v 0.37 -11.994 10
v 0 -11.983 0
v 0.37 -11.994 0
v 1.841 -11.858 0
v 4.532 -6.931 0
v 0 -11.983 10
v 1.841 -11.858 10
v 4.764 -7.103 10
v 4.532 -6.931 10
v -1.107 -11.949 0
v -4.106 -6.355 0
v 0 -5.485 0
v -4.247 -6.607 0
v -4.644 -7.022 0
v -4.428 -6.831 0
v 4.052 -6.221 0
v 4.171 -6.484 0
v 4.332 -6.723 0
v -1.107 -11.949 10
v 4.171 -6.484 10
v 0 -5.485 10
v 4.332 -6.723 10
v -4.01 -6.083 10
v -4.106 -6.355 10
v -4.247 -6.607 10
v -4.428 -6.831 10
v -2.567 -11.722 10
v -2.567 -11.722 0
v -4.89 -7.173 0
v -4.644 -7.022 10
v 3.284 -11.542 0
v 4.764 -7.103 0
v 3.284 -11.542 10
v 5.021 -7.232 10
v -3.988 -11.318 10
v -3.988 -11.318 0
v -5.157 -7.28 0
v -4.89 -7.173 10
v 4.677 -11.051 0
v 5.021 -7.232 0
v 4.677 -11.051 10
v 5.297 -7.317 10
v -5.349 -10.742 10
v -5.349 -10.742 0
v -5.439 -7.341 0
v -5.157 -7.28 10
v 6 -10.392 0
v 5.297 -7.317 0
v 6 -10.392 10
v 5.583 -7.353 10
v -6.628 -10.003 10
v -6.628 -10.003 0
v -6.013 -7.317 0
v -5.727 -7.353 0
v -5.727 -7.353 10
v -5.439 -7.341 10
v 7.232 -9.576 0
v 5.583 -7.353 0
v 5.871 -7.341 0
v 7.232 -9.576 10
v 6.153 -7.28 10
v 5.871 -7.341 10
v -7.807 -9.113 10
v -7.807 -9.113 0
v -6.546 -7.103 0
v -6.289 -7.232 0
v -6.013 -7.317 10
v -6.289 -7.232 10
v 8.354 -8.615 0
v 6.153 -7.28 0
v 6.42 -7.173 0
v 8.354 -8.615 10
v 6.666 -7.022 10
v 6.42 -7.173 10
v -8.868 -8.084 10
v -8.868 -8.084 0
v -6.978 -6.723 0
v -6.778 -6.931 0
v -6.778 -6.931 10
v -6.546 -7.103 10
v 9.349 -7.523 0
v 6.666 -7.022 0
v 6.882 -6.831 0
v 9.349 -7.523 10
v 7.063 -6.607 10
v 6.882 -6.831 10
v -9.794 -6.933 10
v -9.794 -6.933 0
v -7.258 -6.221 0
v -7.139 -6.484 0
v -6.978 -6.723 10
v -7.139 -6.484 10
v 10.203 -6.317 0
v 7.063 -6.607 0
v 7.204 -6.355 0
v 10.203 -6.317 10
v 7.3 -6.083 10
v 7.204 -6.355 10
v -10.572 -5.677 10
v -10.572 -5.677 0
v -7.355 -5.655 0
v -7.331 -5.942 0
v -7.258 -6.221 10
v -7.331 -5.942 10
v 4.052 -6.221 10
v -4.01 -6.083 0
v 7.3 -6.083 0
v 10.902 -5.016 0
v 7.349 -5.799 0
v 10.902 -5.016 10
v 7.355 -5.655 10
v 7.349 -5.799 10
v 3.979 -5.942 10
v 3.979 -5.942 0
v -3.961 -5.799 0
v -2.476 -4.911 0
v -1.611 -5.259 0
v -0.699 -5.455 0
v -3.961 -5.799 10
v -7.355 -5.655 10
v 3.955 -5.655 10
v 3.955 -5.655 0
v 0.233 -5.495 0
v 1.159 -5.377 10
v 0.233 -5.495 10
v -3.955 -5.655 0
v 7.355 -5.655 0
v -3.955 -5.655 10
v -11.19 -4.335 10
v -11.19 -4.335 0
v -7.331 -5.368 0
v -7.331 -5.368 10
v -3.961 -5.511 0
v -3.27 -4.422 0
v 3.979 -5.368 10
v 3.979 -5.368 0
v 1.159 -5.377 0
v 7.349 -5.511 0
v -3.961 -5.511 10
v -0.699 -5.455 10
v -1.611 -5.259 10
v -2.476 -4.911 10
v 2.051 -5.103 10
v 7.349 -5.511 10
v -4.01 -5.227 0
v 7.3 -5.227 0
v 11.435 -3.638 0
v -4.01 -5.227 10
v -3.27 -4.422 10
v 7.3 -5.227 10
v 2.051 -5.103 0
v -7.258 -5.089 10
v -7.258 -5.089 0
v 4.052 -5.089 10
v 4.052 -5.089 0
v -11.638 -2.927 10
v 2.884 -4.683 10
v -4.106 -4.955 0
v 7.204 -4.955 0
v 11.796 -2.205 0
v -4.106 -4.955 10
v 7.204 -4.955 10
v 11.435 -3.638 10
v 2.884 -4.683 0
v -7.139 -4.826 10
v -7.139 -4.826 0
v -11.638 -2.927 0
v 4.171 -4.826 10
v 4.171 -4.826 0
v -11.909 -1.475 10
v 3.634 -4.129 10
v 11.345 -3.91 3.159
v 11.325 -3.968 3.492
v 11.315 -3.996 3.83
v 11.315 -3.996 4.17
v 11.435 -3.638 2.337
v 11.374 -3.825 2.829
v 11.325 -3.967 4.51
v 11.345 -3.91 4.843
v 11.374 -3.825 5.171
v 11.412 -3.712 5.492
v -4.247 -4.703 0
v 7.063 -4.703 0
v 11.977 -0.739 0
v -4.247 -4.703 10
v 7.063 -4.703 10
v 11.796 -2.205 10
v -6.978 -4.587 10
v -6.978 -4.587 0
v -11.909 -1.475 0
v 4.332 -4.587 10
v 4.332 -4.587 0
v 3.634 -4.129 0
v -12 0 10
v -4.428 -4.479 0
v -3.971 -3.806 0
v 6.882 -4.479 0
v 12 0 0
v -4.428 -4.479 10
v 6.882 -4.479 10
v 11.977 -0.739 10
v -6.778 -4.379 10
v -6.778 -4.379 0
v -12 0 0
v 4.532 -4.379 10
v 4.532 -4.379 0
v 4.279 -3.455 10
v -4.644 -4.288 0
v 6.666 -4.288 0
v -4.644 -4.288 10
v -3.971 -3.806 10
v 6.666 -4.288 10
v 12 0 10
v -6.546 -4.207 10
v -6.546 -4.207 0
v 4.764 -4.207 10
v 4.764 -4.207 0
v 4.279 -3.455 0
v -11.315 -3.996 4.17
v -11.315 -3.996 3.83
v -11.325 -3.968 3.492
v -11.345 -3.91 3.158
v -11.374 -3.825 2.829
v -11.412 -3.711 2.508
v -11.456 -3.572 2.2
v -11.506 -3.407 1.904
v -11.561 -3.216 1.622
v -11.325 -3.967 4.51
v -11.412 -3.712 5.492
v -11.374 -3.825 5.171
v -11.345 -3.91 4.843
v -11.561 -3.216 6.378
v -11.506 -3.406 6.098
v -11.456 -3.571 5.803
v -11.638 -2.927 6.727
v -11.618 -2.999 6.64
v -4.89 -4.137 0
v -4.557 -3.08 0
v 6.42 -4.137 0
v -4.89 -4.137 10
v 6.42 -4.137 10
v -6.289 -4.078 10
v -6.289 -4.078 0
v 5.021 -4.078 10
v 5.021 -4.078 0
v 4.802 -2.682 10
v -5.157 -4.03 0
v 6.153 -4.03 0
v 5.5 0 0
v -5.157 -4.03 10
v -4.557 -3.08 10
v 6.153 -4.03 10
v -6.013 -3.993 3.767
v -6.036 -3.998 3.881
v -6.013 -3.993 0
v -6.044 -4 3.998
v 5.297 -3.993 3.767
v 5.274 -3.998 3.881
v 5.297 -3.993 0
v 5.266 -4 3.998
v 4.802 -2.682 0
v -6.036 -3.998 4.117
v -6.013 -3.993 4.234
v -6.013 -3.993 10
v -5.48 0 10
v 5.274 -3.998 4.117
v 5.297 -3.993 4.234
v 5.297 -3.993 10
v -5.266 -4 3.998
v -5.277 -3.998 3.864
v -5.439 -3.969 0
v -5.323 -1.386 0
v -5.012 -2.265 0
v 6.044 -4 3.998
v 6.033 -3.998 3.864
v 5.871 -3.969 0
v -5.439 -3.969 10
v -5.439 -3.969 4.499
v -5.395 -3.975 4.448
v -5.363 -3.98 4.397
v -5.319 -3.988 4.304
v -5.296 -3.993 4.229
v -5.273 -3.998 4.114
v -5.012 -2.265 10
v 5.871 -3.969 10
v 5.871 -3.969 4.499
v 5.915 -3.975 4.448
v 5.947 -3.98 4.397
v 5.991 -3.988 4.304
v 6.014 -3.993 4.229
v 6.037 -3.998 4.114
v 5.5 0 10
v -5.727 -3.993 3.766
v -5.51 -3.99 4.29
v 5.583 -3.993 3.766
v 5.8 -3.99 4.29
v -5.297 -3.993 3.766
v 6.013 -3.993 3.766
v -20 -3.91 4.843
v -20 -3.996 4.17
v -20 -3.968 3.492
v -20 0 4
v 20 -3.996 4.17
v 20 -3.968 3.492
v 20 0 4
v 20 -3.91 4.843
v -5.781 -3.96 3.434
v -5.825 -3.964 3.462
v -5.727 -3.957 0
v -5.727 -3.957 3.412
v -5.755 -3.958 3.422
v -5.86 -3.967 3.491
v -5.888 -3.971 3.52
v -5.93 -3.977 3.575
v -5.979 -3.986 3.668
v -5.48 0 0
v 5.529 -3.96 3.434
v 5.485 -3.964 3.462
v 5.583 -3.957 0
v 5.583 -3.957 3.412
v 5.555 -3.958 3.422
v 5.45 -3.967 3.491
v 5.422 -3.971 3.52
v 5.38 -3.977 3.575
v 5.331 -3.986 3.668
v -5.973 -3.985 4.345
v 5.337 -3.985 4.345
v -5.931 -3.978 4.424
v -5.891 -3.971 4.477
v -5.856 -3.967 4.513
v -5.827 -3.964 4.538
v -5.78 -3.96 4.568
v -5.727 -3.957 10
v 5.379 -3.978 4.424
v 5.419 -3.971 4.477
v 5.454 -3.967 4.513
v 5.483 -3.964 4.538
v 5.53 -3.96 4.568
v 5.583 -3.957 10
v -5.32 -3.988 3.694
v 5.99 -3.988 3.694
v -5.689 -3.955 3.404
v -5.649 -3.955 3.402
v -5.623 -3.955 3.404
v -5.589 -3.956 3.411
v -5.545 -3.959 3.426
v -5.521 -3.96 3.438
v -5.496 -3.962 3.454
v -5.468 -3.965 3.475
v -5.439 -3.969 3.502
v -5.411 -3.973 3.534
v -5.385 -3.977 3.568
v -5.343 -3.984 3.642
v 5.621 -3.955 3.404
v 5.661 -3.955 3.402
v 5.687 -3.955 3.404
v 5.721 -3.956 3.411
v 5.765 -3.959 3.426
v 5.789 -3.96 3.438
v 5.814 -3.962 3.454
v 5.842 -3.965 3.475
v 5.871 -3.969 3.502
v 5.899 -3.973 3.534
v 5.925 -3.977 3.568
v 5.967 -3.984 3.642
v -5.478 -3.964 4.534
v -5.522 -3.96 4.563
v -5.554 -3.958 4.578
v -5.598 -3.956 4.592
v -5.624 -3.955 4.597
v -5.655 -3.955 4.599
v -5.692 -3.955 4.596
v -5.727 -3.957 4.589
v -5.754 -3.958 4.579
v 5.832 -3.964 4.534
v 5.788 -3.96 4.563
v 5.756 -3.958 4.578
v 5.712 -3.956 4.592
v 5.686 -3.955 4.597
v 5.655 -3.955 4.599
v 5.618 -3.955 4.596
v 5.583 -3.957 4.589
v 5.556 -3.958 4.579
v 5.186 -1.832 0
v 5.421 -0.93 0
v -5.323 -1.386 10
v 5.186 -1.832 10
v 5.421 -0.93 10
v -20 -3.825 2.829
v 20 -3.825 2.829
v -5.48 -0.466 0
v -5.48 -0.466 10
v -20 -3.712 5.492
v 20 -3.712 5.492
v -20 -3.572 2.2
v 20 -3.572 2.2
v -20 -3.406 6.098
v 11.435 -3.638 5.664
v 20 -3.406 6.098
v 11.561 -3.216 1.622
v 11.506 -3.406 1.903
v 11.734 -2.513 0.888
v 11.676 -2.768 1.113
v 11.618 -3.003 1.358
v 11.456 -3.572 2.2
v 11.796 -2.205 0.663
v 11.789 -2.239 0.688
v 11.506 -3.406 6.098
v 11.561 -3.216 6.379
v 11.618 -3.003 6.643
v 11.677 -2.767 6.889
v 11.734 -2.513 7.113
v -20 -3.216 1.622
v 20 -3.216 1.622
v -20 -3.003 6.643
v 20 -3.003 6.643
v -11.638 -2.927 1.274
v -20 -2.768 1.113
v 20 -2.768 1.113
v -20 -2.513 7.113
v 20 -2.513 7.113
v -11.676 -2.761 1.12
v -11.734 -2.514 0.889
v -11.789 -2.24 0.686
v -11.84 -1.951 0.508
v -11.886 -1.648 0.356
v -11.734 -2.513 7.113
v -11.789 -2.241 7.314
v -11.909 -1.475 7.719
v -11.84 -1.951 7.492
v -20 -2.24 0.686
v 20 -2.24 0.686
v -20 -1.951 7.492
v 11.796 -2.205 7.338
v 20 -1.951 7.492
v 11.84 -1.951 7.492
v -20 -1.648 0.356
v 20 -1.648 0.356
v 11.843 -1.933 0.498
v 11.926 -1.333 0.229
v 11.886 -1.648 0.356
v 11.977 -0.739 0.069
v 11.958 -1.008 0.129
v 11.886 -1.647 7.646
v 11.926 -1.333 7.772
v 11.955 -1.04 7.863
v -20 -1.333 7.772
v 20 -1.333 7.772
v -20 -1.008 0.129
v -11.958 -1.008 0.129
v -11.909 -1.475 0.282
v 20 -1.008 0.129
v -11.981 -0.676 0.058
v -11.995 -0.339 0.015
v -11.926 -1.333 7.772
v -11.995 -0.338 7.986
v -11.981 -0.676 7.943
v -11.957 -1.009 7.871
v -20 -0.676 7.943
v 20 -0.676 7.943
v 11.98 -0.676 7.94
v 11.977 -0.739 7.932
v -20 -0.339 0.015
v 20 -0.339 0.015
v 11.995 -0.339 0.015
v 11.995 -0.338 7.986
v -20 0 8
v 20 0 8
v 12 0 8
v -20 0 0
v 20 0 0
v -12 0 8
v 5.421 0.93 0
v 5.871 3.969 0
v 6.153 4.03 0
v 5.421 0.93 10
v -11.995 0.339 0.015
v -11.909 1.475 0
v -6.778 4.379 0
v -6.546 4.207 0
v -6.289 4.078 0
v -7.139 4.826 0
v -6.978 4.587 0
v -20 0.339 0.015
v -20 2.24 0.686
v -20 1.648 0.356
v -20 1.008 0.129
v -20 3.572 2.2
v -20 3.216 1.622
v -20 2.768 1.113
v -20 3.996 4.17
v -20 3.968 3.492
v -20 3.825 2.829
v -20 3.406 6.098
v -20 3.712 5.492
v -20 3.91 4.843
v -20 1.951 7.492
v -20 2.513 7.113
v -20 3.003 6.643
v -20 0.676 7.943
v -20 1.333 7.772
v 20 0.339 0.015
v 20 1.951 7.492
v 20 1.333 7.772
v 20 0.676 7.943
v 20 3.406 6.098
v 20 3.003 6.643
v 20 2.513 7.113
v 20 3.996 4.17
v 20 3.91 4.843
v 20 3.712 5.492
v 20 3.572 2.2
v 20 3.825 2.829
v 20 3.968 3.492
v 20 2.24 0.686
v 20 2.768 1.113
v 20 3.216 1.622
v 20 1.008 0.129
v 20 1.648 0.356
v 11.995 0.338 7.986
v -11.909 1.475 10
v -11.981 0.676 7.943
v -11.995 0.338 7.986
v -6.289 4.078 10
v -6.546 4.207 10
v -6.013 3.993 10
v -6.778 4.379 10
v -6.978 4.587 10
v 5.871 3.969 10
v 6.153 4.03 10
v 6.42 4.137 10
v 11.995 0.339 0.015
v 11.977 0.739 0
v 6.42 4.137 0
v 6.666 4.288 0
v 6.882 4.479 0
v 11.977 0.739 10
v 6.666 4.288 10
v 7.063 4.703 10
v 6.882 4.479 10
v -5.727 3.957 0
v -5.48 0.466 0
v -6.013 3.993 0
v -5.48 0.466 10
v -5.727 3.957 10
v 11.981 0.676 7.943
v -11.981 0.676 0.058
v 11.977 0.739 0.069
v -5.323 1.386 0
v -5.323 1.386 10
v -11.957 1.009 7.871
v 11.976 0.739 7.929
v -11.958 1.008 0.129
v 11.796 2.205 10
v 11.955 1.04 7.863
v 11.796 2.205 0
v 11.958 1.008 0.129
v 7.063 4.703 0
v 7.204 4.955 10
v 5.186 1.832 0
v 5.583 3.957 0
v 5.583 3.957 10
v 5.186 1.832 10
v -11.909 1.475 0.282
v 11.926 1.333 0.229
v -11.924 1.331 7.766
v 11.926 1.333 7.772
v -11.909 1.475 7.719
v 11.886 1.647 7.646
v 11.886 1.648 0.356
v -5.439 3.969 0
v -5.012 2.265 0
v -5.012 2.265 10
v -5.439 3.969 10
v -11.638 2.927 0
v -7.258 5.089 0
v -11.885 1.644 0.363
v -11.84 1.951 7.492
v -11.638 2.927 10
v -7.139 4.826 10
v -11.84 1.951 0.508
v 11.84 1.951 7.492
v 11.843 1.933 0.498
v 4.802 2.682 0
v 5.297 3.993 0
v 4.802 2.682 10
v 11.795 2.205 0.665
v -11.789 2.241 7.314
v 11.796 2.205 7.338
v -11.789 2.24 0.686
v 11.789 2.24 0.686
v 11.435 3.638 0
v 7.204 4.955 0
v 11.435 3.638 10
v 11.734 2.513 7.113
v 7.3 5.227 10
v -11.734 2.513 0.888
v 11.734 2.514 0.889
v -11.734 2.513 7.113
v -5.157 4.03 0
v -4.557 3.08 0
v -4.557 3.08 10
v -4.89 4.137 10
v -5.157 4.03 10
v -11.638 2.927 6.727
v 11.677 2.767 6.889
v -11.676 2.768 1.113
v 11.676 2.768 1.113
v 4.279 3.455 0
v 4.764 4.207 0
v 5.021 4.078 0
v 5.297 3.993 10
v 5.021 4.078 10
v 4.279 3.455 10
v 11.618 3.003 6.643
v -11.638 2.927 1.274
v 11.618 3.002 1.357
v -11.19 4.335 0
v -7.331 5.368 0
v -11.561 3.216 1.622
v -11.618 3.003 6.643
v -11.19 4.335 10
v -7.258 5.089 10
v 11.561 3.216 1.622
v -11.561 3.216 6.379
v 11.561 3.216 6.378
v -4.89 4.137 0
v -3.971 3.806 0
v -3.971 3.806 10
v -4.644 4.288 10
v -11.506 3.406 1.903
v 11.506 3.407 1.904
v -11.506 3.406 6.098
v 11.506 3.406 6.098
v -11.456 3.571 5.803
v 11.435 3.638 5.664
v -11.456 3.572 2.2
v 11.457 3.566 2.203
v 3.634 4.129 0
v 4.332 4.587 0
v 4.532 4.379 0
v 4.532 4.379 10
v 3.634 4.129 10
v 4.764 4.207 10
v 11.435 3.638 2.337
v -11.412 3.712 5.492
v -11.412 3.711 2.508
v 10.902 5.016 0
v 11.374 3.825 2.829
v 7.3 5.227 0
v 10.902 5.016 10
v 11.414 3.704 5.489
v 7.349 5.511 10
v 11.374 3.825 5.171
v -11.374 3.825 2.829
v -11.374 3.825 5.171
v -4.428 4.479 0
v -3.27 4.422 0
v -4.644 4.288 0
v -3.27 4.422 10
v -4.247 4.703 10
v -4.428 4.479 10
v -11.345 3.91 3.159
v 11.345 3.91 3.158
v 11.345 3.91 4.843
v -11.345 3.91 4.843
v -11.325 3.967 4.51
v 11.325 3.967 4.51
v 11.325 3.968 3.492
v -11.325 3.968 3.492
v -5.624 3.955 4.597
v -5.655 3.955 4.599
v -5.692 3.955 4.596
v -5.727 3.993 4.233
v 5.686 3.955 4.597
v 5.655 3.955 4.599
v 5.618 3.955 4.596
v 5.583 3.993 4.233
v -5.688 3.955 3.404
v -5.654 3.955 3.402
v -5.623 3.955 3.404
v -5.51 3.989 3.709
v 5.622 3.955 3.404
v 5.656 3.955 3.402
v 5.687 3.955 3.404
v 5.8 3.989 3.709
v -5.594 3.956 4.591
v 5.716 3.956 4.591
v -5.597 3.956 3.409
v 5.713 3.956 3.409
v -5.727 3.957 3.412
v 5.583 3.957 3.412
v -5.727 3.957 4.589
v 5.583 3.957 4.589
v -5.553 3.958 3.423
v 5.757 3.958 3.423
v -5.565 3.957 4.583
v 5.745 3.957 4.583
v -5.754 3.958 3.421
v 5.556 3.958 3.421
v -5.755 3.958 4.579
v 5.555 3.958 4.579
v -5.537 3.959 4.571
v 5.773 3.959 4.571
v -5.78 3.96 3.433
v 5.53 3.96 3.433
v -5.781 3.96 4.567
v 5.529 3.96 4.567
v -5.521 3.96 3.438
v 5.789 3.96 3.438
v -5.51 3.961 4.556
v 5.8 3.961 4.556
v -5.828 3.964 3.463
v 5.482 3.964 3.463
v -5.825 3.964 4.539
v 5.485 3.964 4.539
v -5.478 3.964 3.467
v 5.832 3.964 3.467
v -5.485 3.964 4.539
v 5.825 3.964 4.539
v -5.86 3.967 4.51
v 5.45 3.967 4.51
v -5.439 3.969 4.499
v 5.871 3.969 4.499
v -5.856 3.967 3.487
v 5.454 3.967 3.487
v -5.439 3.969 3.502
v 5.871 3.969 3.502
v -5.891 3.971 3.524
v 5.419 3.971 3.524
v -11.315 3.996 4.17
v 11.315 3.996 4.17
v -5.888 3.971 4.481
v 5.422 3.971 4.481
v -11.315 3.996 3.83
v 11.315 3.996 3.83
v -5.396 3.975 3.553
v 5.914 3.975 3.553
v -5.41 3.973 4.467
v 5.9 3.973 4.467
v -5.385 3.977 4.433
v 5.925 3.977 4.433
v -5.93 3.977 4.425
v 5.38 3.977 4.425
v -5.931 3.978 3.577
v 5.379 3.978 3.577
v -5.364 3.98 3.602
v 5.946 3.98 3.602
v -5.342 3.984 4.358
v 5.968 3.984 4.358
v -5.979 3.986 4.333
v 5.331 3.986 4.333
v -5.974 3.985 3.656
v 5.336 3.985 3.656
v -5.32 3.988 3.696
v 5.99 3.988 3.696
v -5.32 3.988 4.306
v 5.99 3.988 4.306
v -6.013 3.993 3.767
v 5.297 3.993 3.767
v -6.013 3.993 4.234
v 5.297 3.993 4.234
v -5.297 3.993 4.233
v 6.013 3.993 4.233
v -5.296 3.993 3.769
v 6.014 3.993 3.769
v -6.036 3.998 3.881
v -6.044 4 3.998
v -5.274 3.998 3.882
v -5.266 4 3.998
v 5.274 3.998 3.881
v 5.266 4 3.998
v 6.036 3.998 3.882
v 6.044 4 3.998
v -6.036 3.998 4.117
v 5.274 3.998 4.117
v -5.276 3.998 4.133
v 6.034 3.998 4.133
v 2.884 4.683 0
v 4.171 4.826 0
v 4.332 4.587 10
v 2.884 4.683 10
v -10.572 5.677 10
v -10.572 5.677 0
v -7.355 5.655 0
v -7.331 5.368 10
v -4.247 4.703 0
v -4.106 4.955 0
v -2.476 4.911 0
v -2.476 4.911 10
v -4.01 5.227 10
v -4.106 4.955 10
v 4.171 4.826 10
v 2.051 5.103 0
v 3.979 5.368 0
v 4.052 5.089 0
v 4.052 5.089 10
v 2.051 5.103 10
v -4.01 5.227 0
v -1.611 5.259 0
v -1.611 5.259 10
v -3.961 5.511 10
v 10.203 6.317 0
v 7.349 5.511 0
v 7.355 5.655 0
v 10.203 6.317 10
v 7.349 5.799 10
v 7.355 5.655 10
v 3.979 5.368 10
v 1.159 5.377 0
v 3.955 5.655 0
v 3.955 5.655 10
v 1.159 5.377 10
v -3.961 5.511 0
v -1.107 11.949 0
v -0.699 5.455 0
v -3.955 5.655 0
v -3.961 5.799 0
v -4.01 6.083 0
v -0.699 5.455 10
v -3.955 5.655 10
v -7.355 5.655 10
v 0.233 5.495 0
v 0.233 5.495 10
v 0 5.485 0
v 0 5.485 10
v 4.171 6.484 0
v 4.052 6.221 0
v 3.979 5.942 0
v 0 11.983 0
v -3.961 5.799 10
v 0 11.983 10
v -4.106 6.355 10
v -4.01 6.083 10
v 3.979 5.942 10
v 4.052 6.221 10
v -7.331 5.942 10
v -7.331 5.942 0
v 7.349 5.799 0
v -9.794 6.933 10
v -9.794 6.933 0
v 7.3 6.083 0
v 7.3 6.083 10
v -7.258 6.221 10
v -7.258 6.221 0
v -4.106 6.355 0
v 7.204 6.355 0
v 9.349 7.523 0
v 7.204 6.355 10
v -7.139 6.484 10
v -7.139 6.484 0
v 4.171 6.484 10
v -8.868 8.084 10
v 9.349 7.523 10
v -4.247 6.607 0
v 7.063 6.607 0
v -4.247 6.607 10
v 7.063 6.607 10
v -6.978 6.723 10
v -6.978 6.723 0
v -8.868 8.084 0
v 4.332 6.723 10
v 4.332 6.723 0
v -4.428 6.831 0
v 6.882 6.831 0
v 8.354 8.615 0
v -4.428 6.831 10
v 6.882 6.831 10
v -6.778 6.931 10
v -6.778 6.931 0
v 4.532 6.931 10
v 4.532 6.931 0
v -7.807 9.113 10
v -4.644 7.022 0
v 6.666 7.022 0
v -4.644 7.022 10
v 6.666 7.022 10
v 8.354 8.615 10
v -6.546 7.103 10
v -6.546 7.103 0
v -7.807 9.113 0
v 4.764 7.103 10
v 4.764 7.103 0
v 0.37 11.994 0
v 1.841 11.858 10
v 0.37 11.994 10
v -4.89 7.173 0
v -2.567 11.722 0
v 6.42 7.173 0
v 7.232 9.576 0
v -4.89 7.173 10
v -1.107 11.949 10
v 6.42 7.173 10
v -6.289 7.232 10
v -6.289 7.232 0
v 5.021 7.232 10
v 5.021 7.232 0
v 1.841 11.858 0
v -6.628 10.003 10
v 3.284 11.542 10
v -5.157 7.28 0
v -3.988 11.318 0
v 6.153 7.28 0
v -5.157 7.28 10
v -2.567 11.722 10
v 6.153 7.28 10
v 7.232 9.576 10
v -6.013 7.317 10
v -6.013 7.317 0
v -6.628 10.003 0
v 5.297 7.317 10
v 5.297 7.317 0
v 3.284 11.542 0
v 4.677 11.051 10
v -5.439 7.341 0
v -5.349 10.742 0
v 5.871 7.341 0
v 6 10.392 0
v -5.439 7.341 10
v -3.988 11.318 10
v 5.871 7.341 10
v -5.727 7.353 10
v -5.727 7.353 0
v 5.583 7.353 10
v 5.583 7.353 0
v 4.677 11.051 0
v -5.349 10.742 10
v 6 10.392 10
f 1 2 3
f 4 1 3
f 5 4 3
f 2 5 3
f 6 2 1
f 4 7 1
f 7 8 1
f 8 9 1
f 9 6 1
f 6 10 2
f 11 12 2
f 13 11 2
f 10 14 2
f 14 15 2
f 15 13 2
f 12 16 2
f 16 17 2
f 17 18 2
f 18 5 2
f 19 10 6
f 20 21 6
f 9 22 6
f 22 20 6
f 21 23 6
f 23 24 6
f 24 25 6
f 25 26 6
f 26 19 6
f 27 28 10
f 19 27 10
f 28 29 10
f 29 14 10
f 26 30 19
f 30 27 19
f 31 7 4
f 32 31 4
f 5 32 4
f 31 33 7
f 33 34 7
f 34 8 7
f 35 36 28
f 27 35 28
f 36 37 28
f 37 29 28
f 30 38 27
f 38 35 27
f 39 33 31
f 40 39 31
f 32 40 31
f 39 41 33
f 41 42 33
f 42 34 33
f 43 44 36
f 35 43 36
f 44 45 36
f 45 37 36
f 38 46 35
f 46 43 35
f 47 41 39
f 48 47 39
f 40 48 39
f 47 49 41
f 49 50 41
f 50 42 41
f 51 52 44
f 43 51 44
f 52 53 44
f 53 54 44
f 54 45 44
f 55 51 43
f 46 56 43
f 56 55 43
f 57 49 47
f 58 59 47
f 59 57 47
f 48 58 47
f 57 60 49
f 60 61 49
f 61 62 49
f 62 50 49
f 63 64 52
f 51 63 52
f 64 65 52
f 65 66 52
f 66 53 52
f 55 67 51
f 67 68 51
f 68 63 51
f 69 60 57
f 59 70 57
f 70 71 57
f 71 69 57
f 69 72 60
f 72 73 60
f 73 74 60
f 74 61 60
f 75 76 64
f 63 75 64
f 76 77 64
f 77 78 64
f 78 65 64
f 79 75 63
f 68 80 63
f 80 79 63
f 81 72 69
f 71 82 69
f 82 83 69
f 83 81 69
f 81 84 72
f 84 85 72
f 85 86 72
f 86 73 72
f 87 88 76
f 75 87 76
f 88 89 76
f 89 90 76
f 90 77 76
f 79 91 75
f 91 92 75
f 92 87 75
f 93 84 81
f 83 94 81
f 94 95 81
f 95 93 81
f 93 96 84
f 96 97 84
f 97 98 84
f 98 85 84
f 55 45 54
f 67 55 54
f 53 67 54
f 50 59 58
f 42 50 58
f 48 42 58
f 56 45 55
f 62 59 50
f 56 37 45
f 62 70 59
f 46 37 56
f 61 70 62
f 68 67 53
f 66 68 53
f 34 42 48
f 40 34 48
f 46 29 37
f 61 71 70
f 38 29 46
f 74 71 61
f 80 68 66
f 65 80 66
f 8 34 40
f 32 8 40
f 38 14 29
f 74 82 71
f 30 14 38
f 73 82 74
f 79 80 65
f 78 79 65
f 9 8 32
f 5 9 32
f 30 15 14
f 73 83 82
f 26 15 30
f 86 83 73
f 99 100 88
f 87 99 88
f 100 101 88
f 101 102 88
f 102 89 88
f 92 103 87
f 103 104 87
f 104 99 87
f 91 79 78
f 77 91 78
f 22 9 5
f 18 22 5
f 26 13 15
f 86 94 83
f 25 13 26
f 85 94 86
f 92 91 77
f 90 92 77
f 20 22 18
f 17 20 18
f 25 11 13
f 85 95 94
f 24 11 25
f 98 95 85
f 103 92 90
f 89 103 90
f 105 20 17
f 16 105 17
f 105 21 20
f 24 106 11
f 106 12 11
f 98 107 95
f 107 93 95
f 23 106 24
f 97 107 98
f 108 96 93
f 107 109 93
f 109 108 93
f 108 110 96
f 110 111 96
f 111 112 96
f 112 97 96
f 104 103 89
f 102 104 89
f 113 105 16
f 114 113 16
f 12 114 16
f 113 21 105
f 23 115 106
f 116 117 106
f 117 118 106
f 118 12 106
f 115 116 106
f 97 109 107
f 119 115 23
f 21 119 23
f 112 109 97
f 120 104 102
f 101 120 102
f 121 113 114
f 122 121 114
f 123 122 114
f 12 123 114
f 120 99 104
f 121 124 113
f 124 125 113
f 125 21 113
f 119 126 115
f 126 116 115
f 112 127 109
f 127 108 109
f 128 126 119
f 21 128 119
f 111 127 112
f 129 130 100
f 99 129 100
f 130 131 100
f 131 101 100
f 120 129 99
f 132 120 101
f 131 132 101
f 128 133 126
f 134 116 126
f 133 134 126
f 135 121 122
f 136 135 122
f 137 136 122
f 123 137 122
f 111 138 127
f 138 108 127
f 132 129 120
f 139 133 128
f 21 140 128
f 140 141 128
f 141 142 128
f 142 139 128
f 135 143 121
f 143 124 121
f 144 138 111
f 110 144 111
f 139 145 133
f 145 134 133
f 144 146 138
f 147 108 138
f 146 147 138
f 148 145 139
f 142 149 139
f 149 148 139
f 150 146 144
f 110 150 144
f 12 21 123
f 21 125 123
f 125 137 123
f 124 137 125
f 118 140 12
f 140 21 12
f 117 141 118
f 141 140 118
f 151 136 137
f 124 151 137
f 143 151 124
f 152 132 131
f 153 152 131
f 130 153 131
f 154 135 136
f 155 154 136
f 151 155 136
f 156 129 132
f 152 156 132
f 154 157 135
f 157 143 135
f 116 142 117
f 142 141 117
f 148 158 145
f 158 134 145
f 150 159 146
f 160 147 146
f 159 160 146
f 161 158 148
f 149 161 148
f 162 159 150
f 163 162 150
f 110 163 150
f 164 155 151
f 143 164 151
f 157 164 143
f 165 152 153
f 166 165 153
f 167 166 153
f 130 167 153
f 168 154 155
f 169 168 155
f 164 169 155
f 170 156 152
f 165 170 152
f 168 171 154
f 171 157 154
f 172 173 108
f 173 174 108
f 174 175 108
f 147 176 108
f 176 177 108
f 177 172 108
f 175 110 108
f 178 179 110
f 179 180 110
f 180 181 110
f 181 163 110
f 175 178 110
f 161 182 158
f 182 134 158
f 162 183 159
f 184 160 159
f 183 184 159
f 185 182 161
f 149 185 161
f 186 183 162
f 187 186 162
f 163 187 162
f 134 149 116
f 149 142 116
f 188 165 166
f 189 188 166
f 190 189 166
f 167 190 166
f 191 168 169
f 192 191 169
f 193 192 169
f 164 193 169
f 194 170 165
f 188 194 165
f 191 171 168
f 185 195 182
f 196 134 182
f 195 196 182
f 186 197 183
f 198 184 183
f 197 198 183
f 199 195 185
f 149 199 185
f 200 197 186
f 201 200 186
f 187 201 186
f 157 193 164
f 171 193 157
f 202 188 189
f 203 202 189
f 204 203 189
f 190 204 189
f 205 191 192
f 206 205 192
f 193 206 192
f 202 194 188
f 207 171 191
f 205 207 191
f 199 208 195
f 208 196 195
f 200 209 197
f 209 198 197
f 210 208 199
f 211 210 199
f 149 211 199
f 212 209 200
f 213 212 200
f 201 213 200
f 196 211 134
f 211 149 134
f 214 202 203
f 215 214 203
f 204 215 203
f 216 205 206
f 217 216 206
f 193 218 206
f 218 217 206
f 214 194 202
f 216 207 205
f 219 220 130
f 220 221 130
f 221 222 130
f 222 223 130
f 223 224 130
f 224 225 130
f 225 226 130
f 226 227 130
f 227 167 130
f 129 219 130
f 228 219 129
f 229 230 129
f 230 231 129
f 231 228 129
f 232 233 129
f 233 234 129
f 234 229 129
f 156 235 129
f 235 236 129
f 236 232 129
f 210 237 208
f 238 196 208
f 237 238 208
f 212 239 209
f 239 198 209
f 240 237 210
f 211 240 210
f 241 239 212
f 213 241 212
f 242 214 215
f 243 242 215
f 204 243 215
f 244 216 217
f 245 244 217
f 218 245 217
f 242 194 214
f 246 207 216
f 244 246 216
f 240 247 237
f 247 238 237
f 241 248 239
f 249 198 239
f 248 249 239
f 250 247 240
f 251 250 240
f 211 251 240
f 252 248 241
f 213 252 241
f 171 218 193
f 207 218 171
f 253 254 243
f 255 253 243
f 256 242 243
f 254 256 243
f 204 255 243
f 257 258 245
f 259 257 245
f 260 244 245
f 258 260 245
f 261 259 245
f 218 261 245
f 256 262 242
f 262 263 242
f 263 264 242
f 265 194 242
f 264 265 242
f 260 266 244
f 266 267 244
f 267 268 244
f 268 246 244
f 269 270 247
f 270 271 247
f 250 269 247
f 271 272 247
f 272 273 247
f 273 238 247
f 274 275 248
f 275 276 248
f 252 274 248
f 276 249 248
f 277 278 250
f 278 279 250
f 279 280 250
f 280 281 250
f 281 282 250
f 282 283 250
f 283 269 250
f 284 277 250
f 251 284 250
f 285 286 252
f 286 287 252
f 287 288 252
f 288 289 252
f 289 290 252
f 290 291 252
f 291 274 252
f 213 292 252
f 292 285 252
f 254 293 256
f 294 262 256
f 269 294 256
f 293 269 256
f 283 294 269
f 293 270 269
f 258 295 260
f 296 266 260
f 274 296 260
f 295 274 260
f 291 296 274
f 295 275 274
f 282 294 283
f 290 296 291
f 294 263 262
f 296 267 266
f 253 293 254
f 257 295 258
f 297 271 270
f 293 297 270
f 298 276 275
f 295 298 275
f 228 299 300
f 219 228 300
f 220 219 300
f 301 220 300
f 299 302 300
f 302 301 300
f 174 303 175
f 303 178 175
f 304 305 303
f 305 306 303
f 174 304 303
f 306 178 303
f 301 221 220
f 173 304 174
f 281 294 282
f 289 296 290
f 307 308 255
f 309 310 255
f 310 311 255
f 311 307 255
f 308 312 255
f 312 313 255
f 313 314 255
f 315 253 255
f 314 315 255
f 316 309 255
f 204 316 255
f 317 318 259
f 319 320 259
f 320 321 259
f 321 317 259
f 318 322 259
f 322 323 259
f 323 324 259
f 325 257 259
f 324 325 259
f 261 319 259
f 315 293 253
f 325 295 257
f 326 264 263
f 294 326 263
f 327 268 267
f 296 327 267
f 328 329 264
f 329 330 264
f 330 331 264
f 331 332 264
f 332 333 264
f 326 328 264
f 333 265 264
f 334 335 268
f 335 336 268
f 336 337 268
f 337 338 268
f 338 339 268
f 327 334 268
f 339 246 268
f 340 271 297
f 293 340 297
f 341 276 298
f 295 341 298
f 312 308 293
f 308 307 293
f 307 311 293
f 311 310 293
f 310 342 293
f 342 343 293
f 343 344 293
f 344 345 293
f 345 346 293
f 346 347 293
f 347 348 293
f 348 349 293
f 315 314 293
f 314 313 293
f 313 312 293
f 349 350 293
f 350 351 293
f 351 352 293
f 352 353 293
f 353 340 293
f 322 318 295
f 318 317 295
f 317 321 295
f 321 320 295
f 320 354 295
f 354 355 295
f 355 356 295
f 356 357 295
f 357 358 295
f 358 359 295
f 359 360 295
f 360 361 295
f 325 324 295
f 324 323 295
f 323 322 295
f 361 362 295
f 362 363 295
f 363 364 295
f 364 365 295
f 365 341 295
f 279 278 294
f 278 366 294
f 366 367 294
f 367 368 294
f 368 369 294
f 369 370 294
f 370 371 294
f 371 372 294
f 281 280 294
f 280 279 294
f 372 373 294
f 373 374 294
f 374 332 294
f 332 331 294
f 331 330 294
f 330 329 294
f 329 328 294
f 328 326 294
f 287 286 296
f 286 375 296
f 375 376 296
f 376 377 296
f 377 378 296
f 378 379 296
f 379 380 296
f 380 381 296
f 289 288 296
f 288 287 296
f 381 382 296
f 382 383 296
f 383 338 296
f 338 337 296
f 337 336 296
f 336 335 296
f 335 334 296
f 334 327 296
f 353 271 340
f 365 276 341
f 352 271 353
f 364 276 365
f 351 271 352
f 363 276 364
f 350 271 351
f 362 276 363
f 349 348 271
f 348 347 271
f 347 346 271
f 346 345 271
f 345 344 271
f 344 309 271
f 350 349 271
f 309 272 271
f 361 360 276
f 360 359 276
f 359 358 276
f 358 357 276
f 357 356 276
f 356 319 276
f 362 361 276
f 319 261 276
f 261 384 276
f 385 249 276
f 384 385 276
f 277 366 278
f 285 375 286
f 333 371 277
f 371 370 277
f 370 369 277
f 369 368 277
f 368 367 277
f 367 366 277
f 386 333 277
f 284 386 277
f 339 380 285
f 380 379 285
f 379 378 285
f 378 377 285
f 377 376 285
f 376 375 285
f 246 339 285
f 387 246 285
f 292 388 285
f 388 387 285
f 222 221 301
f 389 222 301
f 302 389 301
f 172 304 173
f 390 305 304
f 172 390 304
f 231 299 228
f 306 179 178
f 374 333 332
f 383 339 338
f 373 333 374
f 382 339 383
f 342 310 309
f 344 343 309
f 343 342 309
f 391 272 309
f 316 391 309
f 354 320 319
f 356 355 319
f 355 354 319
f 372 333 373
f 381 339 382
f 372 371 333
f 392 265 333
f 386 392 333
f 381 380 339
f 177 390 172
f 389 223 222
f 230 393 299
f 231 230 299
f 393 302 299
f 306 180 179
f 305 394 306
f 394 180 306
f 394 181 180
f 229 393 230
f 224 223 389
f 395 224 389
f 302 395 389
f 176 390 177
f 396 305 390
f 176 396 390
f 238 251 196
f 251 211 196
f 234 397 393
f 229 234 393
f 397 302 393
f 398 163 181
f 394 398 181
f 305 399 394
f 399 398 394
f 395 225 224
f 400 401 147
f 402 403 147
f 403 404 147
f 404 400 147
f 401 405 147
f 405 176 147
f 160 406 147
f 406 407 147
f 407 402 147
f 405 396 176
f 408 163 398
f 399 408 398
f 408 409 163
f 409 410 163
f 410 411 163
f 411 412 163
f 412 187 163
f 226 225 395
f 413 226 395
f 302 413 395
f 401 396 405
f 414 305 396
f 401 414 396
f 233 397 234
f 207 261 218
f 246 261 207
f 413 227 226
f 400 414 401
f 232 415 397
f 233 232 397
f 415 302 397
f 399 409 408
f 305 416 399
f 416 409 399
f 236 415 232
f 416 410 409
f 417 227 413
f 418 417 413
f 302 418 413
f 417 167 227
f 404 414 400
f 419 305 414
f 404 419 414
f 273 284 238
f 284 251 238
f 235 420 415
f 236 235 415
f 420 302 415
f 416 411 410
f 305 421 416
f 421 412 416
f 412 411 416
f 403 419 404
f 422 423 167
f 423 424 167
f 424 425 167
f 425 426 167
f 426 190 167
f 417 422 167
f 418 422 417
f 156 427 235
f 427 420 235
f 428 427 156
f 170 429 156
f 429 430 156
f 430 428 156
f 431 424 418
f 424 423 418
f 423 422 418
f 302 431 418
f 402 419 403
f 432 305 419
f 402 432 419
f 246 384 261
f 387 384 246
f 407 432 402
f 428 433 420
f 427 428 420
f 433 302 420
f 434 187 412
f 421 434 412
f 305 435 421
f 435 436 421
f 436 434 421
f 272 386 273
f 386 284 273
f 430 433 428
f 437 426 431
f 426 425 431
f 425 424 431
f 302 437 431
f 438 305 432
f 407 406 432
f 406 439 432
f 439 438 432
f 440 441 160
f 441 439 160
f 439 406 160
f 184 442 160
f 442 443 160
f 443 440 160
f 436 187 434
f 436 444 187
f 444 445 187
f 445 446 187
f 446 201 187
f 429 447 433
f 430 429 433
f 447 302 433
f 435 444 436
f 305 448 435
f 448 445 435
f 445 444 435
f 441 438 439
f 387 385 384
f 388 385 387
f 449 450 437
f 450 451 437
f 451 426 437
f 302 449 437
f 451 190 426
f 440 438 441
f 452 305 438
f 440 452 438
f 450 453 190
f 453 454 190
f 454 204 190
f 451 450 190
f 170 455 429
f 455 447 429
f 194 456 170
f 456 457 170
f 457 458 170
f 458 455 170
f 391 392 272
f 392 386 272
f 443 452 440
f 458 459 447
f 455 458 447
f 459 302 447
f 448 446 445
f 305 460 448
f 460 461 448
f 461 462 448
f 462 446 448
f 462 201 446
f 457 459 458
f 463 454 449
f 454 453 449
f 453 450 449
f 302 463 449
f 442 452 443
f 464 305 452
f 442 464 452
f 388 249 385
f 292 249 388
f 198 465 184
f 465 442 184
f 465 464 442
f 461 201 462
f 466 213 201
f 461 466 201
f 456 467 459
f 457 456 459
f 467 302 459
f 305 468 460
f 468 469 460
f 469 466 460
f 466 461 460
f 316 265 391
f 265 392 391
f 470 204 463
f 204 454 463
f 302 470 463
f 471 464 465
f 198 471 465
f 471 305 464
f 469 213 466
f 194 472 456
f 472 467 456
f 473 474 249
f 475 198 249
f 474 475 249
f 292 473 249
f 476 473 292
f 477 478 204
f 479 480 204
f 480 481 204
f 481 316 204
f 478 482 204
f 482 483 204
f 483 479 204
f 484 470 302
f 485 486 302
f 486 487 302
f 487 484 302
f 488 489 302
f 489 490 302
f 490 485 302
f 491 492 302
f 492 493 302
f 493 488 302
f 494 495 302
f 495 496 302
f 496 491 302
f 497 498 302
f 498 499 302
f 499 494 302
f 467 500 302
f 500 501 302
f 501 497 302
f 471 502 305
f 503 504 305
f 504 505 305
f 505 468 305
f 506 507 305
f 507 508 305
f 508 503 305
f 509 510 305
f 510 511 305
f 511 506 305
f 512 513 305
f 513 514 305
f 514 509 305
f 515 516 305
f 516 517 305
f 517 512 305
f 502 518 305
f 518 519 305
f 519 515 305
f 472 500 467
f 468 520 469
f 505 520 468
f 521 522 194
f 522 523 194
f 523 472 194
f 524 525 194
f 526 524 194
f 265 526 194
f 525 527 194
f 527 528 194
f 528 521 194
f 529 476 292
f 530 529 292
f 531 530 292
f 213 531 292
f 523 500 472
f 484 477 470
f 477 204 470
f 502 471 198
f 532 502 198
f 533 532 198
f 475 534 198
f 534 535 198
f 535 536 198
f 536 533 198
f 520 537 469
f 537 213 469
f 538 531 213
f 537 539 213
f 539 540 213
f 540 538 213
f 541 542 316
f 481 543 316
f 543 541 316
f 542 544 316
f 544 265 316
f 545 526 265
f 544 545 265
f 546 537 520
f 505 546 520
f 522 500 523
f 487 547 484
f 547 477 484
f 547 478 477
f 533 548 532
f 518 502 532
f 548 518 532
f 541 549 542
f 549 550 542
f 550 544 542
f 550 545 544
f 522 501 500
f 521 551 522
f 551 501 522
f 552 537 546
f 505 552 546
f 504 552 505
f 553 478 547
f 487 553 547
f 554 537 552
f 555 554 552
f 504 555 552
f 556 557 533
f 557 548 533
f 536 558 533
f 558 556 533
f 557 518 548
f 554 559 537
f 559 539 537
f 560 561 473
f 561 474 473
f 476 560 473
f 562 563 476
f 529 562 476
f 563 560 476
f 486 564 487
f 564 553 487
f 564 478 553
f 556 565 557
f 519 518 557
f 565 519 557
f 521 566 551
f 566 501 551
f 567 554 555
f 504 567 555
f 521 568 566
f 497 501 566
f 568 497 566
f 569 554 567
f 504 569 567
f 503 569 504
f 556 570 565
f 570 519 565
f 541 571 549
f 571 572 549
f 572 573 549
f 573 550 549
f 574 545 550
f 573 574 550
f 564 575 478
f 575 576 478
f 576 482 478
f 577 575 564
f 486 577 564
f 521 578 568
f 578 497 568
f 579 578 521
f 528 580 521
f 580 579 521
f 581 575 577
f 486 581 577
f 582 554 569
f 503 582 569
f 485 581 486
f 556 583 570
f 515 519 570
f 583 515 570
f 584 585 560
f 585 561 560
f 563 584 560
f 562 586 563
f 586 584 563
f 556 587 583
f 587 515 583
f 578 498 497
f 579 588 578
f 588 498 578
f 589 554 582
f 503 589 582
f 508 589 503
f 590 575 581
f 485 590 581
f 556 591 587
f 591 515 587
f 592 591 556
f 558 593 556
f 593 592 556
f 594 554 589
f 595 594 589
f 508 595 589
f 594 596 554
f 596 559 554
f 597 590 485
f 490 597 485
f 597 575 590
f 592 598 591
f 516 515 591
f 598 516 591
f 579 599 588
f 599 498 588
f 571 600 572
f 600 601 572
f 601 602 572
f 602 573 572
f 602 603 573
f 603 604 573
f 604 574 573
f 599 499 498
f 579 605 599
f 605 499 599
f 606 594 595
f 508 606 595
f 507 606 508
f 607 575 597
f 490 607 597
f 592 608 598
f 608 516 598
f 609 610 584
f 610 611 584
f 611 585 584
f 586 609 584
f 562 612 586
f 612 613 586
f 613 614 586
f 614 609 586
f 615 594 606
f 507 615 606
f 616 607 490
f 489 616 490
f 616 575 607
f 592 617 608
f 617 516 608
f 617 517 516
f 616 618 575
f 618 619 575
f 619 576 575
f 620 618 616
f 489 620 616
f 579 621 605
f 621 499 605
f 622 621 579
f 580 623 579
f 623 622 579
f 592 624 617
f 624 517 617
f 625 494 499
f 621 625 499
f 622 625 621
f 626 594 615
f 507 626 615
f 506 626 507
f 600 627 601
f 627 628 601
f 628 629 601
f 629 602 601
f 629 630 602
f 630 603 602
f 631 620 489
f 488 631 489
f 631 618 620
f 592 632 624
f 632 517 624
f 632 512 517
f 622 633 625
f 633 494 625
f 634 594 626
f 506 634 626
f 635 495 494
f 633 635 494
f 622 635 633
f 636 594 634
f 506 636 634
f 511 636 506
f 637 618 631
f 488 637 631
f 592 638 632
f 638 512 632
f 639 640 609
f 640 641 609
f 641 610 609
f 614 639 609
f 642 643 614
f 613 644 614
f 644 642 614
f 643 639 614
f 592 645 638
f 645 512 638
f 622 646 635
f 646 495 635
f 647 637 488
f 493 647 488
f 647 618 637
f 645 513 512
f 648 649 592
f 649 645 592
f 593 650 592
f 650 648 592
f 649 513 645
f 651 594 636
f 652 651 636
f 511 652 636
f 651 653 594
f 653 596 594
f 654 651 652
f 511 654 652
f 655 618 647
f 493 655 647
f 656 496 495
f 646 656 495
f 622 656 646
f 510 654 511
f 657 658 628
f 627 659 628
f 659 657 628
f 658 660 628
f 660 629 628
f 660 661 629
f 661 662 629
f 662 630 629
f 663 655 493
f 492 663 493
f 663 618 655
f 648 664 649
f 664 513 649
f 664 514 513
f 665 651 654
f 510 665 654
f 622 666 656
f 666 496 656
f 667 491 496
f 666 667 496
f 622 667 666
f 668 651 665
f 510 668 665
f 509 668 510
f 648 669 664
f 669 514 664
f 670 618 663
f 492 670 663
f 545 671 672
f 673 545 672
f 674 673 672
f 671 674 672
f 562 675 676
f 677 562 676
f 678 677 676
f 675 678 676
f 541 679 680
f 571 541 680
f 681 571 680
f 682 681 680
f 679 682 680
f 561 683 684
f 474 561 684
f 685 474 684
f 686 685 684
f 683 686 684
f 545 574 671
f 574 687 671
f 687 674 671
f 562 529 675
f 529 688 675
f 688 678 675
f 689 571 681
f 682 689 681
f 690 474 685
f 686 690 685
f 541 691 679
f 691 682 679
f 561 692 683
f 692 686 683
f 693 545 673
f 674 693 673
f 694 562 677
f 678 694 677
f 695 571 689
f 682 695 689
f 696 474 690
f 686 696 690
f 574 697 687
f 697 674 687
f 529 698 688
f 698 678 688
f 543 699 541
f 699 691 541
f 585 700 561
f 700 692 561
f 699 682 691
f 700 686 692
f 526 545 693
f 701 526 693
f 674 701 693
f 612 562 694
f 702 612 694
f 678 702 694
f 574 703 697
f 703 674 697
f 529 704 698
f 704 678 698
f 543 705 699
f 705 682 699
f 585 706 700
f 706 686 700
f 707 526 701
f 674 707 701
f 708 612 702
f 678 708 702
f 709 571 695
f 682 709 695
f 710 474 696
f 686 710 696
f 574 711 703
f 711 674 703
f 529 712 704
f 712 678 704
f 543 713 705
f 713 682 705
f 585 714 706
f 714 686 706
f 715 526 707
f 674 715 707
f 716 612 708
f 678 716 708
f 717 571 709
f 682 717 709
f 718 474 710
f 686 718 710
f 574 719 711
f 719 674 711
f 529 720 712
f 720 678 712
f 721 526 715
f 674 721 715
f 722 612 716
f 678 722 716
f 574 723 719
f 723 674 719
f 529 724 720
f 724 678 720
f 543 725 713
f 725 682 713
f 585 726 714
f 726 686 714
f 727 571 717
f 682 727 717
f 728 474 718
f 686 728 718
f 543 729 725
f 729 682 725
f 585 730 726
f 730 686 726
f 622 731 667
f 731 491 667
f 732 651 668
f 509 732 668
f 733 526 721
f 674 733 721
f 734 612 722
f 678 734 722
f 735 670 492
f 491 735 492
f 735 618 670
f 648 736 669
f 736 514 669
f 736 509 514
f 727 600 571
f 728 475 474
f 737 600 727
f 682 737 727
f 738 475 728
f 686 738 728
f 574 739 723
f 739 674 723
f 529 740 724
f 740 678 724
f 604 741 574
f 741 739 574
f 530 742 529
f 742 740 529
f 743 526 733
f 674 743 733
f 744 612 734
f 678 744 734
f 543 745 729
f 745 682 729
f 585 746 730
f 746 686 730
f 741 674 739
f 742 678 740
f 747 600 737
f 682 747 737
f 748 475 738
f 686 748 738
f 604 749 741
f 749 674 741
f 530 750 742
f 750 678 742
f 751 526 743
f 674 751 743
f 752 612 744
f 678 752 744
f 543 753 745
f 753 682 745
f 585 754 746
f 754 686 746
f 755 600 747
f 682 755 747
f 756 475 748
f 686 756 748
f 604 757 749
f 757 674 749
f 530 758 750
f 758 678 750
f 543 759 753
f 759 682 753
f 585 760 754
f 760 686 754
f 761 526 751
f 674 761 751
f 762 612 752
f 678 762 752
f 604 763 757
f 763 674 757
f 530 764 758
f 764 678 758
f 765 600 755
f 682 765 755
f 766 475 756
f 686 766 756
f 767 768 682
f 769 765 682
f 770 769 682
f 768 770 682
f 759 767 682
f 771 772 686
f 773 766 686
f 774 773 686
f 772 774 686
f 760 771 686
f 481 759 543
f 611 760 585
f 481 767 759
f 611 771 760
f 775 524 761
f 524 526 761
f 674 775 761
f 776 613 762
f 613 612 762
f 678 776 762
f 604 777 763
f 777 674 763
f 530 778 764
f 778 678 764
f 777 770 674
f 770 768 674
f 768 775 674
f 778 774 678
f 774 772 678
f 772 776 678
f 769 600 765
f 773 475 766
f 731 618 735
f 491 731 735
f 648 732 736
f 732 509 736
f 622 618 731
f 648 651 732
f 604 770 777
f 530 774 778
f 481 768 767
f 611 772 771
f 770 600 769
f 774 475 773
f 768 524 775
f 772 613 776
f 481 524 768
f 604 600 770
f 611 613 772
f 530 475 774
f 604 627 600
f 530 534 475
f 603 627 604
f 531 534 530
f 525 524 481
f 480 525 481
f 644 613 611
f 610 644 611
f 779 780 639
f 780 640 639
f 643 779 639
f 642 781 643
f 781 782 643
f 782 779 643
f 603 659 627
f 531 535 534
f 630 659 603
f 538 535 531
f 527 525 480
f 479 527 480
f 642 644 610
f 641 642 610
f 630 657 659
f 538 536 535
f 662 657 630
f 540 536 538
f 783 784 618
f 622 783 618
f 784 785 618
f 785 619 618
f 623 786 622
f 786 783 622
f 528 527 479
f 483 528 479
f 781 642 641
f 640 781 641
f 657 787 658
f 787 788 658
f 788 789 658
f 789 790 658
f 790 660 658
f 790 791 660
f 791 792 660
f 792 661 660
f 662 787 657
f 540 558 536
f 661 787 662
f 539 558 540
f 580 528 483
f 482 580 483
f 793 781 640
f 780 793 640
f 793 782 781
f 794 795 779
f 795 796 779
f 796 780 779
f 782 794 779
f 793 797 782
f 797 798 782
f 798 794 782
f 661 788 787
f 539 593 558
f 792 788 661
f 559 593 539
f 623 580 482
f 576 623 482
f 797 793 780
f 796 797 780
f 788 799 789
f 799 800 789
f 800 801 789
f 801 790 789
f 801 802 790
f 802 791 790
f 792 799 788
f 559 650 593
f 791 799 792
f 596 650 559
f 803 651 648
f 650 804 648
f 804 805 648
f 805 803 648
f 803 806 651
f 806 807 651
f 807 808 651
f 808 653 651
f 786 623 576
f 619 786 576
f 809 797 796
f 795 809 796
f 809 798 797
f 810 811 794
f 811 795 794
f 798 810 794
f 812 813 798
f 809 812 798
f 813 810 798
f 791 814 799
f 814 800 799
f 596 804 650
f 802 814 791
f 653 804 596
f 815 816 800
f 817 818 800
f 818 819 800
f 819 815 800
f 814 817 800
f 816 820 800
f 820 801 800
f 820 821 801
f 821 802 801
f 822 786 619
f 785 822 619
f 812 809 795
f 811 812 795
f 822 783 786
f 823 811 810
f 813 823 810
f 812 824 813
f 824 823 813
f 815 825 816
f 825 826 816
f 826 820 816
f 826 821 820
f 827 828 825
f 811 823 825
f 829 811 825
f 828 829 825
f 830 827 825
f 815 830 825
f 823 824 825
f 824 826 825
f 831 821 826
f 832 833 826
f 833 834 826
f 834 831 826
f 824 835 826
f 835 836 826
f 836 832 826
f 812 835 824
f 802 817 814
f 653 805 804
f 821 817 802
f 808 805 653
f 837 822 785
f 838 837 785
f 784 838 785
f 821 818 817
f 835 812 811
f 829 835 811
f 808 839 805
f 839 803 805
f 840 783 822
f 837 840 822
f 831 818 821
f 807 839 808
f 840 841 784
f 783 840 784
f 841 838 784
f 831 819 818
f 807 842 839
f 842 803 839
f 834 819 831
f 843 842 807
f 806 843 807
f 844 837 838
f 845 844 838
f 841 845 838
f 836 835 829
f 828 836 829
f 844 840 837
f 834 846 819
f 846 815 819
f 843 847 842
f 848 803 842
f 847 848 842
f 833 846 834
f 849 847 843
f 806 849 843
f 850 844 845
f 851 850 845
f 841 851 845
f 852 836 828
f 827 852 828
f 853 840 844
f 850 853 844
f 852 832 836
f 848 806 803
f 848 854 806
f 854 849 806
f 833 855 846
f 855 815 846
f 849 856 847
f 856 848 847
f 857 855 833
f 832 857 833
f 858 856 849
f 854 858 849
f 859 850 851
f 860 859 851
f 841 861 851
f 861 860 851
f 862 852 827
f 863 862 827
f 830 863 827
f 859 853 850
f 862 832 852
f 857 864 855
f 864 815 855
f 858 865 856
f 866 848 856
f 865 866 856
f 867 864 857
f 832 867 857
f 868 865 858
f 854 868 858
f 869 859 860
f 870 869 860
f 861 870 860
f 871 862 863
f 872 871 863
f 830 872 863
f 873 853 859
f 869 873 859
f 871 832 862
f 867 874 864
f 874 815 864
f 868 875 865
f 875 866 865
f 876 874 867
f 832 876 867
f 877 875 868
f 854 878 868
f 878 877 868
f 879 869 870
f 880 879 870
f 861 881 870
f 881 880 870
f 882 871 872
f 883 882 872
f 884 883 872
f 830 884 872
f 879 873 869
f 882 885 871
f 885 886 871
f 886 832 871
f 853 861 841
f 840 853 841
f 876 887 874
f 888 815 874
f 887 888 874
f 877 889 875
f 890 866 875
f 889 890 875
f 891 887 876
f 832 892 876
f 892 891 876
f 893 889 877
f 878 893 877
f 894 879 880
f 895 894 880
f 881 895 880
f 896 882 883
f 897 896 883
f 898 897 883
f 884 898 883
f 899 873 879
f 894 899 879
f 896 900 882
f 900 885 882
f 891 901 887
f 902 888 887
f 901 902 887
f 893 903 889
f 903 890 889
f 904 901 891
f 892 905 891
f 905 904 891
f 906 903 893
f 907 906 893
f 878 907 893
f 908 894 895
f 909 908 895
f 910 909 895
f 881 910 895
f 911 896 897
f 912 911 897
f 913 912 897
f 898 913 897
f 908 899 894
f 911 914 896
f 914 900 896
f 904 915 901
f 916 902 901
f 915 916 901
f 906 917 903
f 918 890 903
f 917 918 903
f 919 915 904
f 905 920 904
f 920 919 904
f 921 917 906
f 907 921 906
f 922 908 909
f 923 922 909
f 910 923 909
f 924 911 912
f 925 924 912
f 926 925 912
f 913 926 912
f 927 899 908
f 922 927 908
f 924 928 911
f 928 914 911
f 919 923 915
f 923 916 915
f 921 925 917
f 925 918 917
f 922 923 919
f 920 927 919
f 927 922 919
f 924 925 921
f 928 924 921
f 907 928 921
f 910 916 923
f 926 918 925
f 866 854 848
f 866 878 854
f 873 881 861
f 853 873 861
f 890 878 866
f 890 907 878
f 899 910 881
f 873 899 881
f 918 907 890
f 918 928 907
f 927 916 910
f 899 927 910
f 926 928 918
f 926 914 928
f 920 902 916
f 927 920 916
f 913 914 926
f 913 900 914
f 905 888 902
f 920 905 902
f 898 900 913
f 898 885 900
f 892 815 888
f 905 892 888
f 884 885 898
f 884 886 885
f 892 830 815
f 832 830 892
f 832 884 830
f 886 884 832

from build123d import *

# Parameters (mm, degrees)
CROQUIS1_R              = 12
CROQUIS1_R_2            = 1.7
SALIENTE_EXTRUIR1_DEPTH = 10
CROQUIS2_R              = 4
SALIENTE_EXTRUIR2_DEPTH = 20
CORTAR_EXTRUIR1_REACH   = 12
CROQUIS3_R              = 5.5


with BuildPart() as part:
    # Croquis1 → Saliente-Extruir1 (new body)
    with BuildSketch(Plane.XY):
        Circle(CROQUIS1_R)
        with Locations((-5.655, 5.655)):
            Circle(CROQUIS1_R_2, mode=Mode.SUBTRACT)
        with Locations((5.655, 5.655)):
            Circle(CROQUIS1_R_2, mode=Mode.SUBTRACT)
        with Locations((5.655, -5.655)):
            Circle(CROQUIS1_R_2, mode=Mode.SUBTRACT)
        with Locations((-5.655, -5.655)):
            Circle(CROQUIS1_R_2, mode=Mode.SUBTRACT)
    extrude(amount=SALIENTE_EXTRUIR1_DEPTH)

    # Croquis2 → Saliente-Extruir2 (add, symmetric)
    with BuildSketch(Plane(origin=(0, 0, 0), x_dir=(0, 0, -1), z_dir=(1, 0, 0))):
        with Locations((-4, 0)):
            Circle(CROQUIS2_R)
    extrude(amount=SALIENTE_EXTRUIR2_DEPTH, both=True)

    # Croquis3 → Cortar-Extruir1 (cut, up to next)
    with BuildSketch(Plane.XY.offset(10), mode=Mode.PRIVATE) as cortar_extruir1_sk1:
        Circle(CROQUIS3_R)
    cortar_extruir1_tool1 = extrude(cortar_extruir1_sk1.sketch, amount=-CORTAR_EXTRUIR1_REACH, mode=Mode.PRIVATE) & part.part
    add(cortar_extruir1_tool1.solids().sort_by_distance((0, 0, 10))[0], mode=Mode.SUBTRACT)


solid = part.part
